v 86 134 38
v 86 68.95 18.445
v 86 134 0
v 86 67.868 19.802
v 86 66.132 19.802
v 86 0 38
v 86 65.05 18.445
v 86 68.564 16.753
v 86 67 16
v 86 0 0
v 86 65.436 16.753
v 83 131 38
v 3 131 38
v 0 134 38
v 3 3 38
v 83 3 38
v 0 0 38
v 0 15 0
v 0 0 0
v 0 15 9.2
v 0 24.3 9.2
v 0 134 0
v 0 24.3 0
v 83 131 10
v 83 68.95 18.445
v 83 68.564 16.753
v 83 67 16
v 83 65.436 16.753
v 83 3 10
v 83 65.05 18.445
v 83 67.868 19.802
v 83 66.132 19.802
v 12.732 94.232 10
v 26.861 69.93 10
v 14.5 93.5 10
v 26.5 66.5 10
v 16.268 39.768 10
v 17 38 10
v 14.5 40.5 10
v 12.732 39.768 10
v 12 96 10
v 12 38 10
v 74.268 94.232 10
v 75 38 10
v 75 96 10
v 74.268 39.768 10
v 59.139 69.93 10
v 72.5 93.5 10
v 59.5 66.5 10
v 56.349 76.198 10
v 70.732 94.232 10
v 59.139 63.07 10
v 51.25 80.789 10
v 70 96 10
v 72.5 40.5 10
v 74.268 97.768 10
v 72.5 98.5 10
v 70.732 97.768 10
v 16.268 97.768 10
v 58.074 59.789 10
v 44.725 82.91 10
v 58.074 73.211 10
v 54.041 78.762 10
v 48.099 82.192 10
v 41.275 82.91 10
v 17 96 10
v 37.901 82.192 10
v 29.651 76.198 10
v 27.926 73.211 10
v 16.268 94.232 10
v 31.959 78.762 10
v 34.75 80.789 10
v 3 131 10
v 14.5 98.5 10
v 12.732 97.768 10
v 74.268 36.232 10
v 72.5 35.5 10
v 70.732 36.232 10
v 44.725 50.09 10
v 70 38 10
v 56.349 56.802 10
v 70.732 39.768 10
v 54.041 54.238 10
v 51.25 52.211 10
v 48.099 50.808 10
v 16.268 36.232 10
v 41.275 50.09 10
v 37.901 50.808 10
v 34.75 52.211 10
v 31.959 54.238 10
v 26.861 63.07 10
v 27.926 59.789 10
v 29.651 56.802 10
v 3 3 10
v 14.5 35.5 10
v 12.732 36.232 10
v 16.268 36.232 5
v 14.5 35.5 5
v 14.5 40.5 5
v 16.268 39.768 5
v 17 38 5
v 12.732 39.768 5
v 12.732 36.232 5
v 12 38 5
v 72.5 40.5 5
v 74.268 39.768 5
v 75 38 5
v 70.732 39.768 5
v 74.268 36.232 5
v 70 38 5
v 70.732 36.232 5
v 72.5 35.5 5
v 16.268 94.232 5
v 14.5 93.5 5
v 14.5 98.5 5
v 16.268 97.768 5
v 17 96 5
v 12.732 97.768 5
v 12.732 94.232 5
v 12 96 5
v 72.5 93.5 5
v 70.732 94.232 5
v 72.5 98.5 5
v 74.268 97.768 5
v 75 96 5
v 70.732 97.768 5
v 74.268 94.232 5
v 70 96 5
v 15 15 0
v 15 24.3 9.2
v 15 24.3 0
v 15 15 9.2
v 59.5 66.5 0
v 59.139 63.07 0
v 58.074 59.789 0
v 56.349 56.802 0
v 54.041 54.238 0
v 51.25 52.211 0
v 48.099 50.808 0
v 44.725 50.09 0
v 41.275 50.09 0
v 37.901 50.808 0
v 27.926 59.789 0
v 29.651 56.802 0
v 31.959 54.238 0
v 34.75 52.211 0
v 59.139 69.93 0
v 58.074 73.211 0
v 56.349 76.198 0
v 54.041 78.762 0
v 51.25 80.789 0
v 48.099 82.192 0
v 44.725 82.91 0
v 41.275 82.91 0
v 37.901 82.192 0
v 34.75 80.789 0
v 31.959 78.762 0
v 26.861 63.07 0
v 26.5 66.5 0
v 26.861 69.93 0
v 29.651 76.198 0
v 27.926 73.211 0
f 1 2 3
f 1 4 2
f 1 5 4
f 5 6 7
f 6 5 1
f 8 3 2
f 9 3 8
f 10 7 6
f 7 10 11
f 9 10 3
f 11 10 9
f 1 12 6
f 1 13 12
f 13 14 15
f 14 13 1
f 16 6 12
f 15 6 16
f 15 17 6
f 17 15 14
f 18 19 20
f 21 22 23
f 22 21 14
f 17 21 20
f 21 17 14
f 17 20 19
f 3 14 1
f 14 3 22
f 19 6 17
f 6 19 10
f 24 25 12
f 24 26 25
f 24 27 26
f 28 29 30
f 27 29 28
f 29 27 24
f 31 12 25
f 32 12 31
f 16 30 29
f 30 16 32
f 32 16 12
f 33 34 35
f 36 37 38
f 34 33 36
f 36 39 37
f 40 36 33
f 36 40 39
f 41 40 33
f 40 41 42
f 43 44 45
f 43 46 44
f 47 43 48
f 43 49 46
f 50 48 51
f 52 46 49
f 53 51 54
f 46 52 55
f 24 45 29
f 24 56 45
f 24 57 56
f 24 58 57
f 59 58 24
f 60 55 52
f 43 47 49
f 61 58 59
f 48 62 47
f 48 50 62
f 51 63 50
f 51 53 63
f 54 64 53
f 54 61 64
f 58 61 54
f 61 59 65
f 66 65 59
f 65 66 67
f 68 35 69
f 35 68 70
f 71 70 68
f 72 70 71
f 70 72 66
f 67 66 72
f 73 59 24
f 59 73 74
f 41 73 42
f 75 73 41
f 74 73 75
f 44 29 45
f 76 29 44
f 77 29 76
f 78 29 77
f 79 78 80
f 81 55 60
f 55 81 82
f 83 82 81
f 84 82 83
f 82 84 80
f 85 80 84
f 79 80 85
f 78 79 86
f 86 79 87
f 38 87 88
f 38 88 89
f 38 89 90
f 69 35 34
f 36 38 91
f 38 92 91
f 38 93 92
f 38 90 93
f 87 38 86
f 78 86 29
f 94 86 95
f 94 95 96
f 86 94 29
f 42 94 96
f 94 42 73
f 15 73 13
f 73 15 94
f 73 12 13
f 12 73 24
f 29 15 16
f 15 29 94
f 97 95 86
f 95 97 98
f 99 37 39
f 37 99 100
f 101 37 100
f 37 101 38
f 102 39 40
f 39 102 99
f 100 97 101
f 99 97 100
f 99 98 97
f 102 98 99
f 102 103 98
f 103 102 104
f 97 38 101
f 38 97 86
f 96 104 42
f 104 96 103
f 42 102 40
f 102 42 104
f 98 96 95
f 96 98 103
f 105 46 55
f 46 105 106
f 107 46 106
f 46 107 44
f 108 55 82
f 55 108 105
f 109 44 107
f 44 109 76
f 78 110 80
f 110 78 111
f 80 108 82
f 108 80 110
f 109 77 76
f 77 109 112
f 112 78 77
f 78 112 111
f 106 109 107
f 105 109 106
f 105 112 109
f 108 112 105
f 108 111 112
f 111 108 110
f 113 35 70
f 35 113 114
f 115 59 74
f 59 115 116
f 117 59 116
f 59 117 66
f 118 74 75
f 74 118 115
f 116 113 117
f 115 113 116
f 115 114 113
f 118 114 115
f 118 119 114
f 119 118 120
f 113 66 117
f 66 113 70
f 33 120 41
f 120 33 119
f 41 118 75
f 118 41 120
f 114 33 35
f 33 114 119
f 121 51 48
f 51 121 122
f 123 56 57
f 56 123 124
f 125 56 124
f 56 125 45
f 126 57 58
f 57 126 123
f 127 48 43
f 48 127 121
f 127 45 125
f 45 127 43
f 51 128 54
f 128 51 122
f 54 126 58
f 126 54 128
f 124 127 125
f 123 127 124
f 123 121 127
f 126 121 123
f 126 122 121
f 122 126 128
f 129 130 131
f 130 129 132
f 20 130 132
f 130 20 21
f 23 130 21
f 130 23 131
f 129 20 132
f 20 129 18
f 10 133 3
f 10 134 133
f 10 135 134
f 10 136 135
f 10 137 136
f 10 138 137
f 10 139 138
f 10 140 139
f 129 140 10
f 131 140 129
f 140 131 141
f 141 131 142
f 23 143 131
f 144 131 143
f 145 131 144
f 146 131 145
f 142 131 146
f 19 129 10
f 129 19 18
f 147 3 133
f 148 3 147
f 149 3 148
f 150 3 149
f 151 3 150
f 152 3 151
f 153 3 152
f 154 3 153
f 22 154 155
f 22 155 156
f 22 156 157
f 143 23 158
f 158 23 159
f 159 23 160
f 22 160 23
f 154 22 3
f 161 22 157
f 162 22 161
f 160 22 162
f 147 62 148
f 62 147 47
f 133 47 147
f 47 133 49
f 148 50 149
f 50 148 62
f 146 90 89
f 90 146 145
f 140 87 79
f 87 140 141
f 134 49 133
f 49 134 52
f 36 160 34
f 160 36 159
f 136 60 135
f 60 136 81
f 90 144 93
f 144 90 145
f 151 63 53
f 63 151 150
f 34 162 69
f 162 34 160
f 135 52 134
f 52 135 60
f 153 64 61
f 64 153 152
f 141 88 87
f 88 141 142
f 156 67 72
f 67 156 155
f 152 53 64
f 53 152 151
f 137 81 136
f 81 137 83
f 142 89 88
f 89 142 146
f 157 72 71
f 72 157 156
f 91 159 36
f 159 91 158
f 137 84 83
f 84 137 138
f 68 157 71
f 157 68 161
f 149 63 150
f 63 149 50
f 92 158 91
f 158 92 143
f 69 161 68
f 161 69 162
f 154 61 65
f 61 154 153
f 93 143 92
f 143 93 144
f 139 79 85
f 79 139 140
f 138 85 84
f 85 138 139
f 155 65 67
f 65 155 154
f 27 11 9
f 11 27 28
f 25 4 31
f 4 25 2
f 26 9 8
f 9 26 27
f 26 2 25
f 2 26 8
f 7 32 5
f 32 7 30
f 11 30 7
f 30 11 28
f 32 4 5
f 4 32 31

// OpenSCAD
// file: speaker_cabinet.scad
u=12;
margin=5;
border=2;

difference() {
    union() {
        cube([u*6+margin*2+border*2,u*10+margin*2+border*2,50]);
    };
    
    //main cutout
    translate([3,3,22]) {
        cube([u*6+margin*2+border*2-6,u*10+margin*2+border*2-6,28]);
    };
    
    //speaker stands
    translate([(87-58)/2,(134-58)/2,17]) {
        cylinder(h=8, d=5);
    }
    translate([(87-58)/2+58,(134-58)/2,17]) {
        cylinder(h=8, d=5);
    }
    translate([(87-58)/2,(134-58)/2+58,17]) {
        cylinder(h=8, d=5);
    }
    translate([(87-58)/2+58,(134-58)/2+58,17]) {
        cylinder(h=8, d=5);
    }    
    
    //back mounting bracket
    translate([10,10,0]) {
        cylinder(h=8, d=5);
    }
    translate([u*6+margin*2+border*2-10,10,0]) {
        cylinder(h=8, d=5);
    }
    translate([10,u*10+margin*2+border*2-10,0]) {
        cylinder(h=8, d=5);
    }
    translate([u*6+margin*2+border*2-10,u*10+margin*2+border*2-10,0]) {
        cylinder(h=8, d=5);
    }
    
    //power cutout
    translate([0,15,10]) {
        cube([15,9.3,11.2]);        
    }    
    //power cutout pins
    translate([6,15,6]) {
        cube([9,9.3,4]);
    }    
    //power cable run
    translate([15,15,10]) {
        cube([86-14.5,9.3,2]);        
    }    
    
    //speaker magnet
    translate([87/2-33/2+16,134/2-33/2+16,12]) {
        cylinder(h=10,d=33);
    }
    
    //speaker wire conduit
    translate([u*6+margin*2+border*2-5,134/2,30]) {
        rotate(90,[0,1,0]) {
            cylinder(h=15,d=4);
        }
    }
};

// speaker stand 4mm diameter, 58mm apart
//87x134mm
// main file
difference() {
    translate([0,0,-12]) {
        include <speaker_cabinet.scad>;
    }
    translate([-1,-1,-12]) {
        cube([200,200,12]);
    };
}
